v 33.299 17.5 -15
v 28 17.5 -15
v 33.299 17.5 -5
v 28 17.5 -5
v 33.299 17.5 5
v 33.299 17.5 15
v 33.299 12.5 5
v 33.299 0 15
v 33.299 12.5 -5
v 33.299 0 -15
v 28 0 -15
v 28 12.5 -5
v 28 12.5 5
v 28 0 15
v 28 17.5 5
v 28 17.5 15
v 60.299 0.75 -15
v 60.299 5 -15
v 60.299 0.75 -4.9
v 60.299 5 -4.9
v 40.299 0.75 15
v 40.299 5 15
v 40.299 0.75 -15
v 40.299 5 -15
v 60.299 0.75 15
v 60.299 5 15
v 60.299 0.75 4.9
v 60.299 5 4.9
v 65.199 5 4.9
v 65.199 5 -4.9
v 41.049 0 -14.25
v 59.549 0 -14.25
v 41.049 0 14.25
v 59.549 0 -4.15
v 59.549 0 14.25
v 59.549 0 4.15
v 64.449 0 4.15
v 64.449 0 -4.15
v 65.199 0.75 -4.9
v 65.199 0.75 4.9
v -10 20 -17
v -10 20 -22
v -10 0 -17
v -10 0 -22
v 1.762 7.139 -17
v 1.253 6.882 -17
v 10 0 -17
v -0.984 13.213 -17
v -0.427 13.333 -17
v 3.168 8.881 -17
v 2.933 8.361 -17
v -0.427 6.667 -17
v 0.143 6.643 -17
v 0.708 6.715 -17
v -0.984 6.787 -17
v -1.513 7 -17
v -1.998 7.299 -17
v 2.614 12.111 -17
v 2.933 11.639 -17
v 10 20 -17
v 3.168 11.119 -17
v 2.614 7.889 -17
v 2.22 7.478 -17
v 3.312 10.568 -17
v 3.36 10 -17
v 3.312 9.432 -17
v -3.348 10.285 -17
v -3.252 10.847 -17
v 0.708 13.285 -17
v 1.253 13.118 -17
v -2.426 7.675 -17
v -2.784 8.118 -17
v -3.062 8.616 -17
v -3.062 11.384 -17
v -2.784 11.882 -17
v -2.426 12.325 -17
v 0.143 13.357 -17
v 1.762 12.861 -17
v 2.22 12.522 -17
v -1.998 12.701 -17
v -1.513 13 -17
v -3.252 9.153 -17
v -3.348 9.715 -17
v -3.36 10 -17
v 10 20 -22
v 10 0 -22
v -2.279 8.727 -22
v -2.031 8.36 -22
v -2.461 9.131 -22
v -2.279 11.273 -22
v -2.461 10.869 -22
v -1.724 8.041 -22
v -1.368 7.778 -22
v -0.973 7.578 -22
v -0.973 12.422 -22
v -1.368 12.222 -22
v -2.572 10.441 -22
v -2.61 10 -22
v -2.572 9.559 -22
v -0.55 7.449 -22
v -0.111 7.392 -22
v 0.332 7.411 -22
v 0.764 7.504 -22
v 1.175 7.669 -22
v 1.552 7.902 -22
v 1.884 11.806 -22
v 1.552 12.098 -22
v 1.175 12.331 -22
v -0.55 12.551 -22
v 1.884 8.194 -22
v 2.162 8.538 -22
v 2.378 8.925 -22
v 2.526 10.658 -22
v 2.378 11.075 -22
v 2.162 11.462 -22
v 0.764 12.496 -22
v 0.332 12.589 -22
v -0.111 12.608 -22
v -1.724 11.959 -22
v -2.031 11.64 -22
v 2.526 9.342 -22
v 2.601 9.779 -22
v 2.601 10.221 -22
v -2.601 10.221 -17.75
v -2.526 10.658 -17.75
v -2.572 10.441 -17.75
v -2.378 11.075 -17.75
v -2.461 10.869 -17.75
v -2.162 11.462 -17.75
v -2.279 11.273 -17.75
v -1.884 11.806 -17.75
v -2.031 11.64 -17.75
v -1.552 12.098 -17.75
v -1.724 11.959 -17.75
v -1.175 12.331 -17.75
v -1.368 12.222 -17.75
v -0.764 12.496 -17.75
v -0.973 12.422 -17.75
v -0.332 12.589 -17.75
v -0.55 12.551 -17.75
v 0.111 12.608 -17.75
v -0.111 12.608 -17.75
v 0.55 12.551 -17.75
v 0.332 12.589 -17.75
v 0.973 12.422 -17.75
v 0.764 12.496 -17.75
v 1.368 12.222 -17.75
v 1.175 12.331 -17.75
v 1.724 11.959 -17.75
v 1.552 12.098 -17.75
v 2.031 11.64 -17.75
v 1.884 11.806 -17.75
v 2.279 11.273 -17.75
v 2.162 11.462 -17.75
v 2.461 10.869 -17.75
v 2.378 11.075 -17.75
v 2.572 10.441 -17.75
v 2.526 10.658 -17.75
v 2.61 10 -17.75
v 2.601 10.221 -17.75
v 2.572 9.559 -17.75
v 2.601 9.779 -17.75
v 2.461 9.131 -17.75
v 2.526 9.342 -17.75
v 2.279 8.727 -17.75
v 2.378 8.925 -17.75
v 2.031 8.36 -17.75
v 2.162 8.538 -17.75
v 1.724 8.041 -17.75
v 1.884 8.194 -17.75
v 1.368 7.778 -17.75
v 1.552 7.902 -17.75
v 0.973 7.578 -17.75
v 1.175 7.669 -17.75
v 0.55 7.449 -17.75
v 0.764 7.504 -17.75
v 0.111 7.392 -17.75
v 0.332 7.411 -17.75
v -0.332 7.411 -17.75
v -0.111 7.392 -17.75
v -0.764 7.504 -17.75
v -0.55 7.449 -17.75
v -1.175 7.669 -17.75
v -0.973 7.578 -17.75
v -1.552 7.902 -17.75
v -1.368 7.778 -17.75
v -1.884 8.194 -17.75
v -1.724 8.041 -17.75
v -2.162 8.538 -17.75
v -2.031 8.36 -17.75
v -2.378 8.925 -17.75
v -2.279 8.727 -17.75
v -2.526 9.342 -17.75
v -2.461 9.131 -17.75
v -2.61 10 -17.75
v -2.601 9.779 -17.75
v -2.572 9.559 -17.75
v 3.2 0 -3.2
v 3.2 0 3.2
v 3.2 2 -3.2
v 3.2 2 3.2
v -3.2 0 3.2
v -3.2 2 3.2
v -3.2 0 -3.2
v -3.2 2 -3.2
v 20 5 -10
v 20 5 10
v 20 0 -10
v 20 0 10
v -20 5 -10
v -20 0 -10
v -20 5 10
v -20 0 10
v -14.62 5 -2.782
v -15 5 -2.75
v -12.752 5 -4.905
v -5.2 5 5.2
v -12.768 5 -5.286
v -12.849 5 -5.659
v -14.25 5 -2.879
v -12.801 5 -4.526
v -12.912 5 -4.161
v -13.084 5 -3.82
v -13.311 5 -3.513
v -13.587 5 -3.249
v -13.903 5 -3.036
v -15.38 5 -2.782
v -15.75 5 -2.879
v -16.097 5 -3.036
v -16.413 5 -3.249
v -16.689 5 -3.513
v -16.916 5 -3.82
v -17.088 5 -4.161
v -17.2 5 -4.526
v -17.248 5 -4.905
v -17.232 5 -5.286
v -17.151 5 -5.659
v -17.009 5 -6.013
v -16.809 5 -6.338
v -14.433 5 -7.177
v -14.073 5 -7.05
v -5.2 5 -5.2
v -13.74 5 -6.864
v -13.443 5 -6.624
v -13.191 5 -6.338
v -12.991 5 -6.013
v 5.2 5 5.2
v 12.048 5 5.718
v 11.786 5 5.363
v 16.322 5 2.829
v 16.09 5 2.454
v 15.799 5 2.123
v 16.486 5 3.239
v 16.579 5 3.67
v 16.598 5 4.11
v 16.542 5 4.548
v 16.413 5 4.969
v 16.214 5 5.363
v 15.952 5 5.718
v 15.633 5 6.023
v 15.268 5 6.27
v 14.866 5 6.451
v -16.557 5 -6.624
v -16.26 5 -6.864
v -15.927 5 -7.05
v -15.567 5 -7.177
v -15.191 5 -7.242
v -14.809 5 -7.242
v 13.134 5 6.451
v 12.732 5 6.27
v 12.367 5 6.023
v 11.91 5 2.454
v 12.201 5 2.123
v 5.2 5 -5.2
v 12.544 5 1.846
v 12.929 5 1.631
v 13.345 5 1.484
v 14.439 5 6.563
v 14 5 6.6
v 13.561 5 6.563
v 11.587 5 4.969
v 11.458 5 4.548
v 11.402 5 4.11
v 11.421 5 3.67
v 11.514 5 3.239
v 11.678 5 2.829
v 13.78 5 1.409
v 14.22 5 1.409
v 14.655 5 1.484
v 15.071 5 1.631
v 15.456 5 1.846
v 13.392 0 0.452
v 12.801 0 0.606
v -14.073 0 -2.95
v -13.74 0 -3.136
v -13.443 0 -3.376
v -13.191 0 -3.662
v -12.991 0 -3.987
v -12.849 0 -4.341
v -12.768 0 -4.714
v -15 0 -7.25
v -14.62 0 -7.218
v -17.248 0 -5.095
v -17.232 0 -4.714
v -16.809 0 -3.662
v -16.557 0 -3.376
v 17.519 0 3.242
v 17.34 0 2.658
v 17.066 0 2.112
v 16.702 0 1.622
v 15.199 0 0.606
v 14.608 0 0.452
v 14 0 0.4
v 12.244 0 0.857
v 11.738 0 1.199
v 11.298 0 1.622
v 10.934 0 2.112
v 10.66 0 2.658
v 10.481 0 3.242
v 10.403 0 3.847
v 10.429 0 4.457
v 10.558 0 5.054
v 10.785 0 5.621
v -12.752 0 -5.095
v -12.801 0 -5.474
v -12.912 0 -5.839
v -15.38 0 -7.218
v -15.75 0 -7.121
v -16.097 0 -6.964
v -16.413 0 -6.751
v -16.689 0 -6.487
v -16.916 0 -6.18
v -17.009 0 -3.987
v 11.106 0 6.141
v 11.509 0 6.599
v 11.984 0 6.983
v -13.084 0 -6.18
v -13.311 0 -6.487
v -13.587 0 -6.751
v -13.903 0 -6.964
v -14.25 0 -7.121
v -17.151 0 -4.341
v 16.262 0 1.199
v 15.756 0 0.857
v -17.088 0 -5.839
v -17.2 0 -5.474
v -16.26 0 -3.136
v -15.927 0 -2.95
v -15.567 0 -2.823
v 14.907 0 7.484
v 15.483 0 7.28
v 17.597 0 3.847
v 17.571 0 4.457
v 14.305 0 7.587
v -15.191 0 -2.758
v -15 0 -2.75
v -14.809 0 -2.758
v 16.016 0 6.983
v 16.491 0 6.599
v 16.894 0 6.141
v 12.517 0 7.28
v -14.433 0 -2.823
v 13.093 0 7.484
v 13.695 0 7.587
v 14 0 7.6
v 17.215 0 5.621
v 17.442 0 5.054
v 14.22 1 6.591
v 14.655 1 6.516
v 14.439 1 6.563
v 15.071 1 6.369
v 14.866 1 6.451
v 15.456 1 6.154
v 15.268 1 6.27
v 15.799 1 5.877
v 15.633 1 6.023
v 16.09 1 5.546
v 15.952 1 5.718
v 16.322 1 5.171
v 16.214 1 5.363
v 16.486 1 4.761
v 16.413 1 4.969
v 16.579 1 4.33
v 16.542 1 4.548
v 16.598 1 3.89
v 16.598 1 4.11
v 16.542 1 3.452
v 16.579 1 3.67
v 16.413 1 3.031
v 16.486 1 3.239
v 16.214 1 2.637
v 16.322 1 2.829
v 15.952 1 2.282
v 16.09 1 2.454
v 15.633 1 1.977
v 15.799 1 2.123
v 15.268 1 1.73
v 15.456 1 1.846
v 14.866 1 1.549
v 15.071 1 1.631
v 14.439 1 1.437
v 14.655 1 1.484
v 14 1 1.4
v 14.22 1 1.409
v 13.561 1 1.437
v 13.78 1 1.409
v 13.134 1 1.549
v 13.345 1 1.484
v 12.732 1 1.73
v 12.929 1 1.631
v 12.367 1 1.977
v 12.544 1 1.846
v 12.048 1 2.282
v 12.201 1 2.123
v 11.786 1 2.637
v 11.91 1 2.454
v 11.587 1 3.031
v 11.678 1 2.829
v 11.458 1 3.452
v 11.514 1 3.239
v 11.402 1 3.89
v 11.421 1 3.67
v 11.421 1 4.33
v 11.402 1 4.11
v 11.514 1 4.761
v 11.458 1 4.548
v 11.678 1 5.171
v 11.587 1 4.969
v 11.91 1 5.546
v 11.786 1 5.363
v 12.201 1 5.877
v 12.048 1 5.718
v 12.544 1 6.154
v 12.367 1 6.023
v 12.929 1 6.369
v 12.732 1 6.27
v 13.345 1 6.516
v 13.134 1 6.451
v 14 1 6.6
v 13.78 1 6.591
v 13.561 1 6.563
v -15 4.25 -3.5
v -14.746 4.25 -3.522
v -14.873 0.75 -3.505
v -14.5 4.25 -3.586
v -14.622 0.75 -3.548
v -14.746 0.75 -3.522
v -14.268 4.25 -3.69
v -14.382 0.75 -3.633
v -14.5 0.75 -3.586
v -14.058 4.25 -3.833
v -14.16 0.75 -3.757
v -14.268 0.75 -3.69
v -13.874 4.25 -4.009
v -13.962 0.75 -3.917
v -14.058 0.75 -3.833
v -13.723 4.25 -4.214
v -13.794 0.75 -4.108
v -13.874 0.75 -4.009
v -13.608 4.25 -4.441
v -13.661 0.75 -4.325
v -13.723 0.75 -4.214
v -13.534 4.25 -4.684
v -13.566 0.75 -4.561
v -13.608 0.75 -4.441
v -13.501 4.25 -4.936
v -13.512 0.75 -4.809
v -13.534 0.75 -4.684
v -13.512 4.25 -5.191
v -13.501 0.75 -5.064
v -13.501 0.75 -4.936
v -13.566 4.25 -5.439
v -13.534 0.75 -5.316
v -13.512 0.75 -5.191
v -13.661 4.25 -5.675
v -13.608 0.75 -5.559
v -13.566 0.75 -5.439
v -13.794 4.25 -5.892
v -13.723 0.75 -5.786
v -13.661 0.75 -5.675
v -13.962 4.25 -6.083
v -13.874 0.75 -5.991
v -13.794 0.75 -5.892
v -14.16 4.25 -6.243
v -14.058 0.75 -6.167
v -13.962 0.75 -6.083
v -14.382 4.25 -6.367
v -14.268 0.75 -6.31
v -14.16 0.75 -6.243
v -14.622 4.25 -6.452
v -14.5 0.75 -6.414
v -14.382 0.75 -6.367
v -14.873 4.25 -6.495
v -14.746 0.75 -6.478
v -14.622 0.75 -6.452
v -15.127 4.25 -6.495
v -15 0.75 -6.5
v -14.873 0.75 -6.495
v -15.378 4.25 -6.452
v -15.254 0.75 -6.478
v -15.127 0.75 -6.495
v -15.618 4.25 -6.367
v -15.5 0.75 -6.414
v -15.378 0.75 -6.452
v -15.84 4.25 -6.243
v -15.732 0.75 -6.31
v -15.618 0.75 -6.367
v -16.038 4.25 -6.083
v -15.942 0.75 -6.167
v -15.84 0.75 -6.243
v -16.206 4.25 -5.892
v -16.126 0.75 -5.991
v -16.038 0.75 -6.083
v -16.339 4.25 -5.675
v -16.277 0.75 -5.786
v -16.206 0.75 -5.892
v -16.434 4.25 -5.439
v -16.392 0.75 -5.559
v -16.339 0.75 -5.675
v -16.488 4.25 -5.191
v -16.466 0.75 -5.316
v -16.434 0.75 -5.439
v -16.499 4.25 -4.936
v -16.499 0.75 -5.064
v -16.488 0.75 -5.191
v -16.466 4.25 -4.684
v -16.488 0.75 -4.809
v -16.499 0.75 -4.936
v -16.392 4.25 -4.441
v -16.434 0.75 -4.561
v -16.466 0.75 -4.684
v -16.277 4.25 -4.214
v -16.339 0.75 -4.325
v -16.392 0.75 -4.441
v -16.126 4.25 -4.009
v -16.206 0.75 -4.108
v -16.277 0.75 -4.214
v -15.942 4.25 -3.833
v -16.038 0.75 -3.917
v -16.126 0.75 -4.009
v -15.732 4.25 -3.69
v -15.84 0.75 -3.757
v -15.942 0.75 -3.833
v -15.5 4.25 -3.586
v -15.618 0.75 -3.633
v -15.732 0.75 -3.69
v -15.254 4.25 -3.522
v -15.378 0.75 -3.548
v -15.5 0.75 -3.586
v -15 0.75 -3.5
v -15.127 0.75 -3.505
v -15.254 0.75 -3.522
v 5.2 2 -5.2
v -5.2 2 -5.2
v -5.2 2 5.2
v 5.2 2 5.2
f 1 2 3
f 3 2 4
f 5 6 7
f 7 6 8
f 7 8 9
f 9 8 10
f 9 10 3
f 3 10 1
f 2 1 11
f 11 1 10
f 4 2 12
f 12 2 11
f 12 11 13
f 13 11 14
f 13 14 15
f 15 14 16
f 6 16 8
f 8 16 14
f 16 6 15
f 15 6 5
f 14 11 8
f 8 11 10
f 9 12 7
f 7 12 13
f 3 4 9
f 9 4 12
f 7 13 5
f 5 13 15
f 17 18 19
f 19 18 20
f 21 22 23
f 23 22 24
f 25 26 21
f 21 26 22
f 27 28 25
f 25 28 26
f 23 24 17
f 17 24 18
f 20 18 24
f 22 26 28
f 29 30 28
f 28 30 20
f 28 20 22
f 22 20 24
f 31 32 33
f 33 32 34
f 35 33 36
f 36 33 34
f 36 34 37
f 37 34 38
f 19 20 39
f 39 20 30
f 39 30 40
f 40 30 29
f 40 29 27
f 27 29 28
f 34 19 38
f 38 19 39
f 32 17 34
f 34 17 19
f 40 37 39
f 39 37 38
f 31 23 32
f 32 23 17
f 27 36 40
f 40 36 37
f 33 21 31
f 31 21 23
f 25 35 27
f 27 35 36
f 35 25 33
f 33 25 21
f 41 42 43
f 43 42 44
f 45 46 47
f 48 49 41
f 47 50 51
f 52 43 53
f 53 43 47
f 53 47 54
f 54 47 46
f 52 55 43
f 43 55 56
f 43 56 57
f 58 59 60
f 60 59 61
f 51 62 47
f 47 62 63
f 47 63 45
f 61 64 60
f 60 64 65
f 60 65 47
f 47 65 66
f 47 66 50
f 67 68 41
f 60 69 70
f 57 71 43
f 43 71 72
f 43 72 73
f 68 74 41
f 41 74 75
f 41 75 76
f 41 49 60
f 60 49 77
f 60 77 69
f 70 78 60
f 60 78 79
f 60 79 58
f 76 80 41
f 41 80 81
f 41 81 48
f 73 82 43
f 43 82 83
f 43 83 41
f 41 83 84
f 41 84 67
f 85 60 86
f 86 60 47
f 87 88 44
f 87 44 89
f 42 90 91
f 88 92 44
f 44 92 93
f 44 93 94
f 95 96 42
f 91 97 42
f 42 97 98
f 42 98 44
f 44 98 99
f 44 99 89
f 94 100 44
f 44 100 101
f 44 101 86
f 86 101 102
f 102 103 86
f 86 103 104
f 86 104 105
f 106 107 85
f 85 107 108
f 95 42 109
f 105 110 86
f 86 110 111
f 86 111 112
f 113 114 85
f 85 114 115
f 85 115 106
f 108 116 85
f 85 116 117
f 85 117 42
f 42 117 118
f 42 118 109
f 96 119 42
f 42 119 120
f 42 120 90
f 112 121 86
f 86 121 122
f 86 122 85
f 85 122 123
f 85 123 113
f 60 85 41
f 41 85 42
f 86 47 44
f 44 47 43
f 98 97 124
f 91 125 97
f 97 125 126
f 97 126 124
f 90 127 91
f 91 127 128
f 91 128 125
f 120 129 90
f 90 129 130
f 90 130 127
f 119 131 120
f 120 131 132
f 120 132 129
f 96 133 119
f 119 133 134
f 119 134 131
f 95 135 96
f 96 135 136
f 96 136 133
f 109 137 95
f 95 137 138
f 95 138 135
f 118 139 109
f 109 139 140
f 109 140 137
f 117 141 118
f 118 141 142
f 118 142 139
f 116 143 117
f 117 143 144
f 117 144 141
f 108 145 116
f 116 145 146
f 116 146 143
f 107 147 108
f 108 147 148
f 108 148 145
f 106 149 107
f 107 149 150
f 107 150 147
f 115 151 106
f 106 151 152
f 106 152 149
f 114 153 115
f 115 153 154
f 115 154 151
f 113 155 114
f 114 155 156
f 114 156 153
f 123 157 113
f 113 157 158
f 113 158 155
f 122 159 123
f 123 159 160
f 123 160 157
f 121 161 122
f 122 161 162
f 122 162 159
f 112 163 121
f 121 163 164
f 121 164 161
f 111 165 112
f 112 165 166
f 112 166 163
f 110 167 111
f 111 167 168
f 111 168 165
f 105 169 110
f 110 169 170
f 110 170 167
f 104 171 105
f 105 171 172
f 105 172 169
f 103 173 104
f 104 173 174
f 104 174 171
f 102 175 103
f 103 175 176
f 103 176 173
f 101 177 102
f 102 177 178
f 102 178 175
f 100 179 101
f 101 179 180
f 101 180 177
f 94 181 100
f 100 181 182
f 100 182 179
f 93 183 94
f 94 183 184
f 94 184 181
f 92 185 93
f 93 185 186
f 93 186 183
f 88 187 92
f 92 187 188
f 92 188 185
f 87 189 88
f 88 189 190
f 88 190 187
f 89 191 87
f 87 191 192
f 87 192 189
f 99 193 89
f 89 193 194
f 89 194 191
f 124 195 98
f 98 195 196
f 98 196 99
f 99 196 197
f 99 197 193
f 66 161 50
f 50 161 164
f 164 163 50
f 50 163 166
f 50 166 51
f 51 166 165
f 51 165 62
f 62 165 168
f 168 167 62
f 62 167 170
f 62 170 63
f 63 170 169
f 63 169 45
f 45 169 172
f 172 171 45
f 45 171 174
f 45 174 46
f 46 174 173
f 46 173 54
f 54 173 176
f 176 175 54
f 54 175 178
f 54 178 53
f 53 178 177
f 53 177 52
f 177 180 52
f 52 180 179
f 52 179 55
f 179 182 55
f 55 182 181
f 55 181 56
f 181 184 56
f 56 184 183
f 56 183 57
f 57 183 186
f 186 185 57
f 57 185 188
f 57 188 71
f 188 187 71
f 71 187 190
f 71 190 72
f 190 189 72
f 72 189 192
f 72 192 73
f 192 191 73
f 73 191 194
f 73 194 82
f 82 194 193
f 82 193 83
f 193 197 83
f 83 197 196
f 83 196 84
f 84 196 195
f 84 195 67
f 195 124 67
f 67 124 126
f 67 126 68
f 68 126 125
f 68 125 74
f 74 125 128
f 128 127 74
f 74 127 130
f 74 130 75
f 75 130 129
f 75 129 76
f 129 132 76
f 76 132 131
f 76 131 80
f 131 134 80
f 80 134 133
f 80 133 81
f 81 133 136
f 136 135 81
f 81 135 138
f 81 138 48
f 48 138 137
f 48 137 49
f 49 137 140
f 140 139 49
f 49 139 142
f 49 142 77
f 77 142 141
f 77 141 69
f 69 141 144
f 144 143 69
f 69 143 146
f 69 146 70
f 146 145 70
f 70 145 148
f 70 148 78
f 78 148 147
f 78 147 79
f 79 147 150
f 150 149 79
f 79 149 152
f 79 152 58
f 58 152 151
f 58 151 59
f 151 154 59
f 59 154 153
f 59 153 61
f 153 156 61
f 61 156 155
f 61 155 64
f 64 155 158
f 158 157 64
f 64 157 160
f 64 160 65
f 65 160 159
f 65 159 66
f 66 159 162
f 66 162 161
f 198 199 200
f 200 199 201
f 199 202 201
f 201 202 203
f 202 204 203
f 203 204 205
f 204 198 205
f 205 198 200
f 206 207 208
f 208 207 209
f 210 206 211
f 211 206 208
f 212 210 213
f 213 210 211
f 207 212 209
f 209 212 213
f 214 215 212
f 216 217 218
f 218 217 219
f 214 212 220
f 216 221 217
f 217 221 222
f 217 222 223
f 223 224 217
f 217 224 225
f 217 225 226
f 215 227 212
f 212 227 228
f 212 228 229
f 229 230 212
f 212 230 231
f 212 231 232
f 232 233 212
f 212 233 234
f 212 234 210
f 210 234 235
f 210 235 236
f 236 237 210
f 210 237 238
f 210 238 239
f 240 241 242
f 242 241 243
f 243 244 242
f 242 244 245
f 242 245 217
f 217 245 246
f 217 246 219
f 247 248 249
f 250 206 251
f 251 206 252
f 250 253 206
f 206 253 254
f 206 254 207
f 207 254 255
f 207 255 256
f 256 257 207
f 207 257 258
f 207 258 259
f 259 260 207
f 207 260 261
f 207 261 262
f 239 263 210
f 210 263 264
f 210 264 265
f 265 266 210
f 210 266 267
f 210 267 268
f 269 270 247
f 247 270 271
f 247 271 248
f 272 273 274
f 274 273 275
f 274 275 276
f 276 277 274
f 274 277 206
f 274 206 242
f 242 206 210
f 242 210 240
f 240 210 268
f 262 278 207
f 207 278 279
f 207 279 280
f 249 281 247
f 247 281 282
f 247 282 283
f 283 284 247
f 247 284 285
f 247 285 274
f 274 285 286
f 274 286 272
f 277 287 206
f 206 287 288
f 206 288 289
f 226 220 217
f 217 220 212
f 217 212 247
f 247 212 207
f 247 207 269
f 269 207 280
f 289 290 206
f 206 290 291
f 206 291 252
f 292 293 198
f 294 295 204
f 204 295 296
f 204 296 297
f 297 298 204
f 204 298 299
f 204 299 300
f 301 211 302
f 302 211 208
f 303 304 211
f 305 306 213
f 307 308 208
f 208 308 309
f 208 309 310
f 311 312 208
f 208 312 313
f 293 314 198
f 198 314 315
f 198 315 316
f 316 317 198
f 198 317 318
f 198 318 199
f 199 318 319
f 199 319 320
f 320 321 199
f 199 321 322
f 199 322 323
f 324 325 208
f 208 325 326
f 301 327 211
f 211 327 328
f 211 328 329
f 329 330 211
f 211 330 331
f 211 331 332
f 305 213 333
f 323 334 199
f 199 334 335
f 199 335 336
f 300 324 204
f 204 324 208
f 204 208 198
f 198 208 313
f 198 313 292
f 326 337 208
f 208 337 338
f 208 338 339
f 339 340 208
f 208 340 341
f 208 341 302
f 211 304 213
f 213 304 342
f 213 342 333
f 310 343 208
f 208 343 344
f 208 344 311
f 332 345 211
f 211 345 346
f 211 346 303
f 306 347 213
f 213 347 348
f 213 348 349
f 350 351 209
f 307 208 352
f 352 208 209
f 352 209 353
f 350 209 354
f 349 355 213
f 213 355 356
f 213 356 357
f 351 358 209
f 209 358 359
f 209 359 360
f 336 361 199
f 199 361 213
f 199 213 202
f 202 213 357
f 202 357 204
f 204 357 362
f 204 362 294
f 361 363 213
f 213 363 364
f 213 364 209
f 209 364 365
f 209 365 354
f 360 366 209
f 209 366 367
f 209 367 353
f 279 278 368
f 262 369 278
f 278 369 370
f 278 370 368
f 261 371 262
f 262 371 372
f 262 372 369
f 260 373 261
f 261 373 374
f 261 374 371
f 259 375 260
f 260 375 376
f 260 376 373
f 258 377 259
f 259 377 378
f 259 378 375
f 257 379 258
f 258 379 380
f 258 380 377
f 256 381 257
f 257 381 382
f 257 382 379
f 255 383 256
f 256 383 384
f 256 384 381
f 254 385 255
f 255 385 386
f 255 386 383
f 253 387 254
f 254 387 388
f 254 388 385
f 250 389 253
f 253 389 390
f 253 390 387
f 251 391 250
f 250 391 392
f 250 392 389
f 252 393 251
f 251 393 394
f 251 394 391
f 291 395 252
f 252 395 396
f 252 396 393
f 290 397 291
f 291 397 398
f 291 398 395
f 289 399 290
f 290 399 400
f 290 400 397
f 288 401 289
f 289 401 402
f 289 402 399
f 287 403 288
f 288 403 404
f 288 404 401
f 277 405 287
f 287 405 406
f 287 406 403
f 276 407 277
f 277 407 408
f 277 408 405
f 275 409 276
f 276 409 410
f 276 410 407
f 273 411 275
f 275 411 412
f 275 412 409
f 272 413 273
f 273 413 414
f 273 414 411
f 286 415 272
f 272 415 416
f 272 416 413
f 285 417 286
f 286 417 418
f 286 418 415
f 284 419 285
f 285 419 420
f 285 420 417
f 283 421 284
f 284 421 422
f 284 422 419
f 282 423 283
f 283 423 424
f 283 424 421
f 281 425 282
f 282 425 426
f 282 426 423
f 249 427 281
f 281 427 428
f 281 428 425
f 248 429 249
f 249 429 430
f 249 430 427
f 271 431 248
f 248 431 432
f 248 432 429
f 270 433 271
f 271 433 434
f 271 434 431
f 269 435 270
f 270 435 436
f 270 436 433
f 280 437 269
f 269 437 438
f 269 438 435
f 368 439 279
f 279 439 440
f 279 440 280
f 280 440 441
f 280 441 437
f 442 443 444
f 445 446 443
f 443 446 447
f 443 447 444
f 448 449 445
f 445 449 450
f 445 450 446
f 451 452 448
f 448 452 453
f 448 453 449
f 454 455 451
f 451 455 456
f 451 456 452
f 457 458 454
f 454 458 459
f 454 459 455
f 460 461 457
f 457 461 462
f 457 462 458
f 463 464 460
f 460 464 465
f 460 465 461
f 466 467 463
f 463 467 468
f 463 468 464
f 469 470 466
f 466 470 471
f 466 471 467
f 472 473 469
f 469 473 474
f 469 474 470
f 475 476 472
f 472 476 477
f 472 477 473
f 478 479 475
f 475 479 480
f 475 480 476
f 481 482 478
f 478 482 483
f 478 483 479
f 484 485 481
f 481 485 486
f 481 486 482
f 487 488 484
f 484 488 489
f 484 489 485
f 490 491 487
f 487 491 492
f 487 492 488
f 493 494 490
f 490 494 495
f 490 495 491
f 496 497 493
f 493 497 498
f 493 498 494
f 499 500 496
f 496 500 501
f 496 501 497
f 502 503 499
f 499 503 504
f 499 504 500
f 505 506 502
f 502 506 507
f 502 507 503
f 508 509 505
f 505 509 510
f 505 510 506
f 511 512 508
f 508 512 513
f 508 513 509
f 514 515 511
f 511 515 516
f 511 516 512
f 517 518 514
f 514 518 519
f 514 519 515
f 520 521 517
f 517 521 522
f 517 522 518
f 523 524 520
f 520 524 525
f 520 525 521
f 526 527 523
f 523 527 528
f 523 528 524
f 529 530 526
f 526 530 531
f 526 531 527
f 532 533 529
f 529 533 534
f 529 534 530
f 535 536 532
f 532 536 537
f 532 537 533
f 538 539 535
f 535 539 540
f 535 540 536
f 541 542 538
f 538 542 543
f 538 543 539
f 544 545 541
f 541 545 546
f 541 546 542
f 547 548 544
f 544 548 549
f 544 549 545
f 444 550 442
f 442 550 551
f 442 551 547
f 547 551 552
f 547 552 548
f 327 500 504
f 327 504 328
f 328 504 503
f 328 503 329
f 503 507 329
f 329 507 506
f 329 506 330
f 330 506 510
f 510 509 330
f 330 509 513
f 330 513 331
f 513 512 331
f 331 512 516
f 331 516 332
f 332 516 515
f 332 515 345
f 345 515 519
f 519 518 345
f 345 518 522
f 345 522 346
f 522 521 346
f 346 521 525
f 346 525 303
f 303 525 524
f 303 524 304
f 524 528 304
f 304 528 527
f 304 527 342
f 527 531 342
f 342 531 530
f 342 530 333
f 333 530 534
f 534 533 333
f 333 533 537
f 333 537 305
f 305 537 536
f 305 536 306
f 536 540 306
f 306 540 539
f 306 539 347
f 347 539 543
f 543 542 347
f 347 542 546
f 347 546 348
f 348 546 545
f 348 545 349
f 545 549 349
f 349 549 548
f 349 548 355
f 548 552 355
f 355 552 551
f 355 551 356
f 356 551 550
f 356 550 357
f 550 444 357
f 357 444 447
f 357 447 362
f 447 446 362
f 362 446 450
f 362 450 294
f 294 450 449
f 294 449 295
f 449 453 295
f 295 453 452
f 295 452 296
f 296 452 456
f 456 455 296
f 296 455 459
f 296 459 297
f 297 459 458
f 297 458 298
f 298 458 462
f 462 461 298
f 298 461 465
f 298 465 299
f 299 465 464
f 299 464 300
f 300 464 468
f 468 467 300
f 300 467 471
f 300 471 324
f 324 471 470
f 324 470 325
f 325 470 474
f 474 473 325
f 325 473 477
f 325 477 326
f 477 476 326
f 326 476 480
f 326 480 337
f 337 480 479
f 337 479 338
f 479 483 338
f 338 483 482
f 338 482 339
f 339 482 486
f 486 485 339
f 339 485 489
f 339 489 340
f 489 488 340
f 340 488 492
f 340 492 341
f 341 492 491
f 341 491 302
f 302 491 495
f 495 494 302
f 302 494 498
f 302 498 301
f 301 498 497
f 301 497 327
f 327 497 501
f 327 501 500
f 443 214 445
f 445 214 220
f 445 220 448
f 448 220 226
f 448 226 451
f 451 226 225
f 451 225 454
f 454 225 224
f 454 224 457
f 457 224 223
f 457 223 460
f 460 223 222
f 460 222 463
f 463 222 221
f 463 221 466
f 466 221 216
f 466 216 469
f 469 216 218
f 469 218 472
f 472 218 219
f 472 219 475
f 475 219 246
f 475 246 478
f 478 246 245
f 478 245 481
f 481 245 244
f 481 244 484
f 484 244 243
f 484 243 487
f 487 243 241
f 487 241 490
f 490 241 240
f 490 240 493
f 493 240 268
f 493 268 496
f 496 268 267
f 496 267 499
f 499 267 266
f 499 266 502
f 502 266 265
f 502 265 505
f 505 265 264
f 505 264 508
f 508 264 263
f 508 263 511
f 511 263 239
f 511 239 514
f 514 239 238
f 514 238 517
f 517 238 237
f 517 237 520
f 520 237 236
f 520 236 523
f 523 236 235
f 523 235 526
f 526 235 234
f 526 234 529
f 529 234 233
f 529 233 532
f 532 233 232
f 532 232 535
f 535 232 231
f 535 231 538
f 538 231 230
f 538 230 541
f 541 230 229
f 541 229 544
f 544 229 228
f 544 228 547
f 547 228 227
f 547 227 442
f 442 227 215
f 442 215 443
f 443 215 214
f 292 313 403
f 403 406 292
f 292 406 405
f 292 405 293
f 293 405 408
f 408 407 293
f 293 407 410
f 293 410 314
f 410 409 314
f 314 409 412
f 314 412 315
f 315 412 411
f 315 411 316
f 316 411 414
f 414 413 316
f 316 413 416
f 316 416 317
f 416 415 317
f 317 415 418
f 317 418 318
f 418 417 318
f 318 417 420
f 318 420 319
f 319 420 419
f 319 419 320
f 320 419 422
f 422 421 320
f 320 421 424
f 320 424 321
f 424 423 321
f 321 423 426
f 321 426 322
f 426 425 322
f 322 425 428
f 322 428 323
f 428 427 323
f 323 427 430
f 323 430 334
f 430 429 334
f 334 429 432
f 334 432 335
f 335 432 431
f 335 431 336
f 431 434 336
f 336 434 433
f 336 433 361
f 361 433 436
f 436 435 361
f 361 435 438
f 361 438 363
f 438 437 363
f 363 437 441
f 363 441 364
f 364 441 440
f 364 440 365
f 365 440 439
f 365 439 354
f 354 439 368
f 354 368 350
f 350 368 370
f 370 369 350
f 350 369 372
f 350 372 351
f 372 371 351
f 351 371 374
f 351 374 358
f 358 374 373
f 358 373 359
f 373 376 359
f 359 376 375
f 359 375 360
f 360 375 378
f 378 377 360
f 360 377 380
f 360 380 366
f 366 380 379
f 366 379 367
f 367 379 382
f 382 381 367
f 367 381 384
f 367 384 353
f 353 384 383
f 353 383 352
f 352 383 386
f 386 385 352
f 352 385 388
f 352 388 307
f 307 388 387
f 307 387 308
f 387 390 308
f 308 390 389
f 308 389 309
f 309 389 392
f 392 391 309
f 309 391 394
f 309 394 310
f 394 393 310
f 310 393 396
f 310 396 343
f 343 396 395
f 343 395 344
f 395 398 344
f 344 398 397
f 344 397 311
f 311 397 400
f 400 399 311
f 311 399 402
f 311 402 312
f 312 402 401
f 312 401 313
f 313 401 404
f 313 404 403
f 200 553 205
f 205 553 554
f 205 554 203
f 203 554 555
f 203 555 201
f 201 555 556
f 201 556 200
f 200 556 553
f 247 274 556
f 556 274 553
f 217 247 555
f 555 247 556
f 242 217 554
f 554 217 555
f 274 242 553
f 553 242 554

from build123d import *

# Parameters (mm, degrees)
SKETCH1_W           = 40
SKETCH1_H           = 20
BOSS_EXTRUDE1_DEPTH = 5
SKETCH2_R           = 1.5
SKETCH2_R_2         = 2.6
CUT_EXTRUDE1_DEPTH  = 5
CHAMFER1_SIZE       = 0.75
CHAMFER2_SIZE       = 1
SKETCH3_W           = 6.4
SKETCH3_H           = 6.4
CUT_EXTRUDE2_DEPTH  = 5
SKETCH4_W           = 5.298970187
SKETCH4_H           = 30
BOSS_EXTRUDE2_DEPTH = 17.5
SKETCH5_W           = 10
SKETCH5_H           = 10
CUT_EXTRUDE3_DEPTH  = 17.5
SKETCH6_W           = 20
SKETCH6_H           = 30
BOSS_EXTRUDE3_DEPTH = 5
SKETCH7_W           = 4.9
SKETCH7_H           = 9.8
BOSS_EXTRUDE4_DEPTH = 5
SKETCH8_W           = 20
SKETCH8_H           = 5
BOSS_EXTRUDE5_DEPTH = 20
SKETCH9_R           = 2.61
CUT_EXTRUDE4_DEPTH  = 20
CHAMFER4_SIZE       = 0.75
CHAMFER5_SIZE       = 0.75
SKETCH11_W          = 10.4
SKETCH11_H          = 10.4
CUT_EXTRUDE5_DEPTH  = 3


with BuildPart() as part:
    # Sketch1 → Boss-Extrude1 (new body)
    with BuildSketch(Plane(origin=(0, 0, 0), x_dir=(1, 0, 0), z_dir=(0, 1, 0))):
        Rectangle(SKETCH1_W, SKETCH1_H)
    extrude(amount=BOSS_EXTRUDE1_DEPTH)

    # Sketch2 → Cut-Extrude1 (cut)
    with BuildSketch(Plane(origin=(0, 5, 0), x_dir=(1, 0, 0), z_dir=(0, 1, 0))):
        with Locations(Location((-15, 5, 0), (0, 0, 270))):
            Circle(SKETCH2_R)
        with Locations(Location((14, -4, 0), (0, 0, 270))):
            Circle(SKETCH2_R_2)
    extrude(amount=-CUT_EXTRUDE1_DEPTH, mode=Mode.SUBTRACT)

    # Chamfer1
    chamfer1_edges = [part.edges().sort_by_distance(p)[0] for p in [
        (-15, 0, -6.5),
        (-15, 5, -6.5),
    ]]
    chamfer(chamfer1_edges, length=CHAMFER1_SIZE)

    # Chamfer2
    chamfer2_edges = [part.edges().sort_by_distance(p)[0] for p in [
        (14, 0, 1.4),
    ]]
    chamfer(chamfer2_edges, length=CHAMFER2_SIZE)

    # Sketch3 → Cut-Extrude2 (cut)
    with BuildSketch(Plane(origin=(0, 5, 0), x_dir=(1, 0, 0), z_dir=(0, 1, 0))):
        Rectangle(SKETCH3_W, SKETCH3_H)
    extrude(amount=-CUT_EXTRUDE2_DEPTH, mode=Mode.SUBTRACT)

    # Sketch11 → Cut-Extrude5 (cut)
    with BuildSketch(Plane(origin=(0, 5, 0), x_dir=(1, 0, 0), z_dir=(0, 1, 0))):
        Rectangle(SKETCH11_W, SKETCH11_H)
    extrude(amount=-CUT_EXTRUDE5_DEPTH, mode=Mode.SUBTRACT)


with BuildPart() as body_2:
    # Sketch4 → Boss-Extrude2 (new body)
    with BuildSketch(Plane(origin=(0, 0, 0), x_dir=(1, 0, 0), z_dir=(0, 1, 0))):
        with Locations((30.649485094, 0)):
            Rectangle(SKETCH4_W, SKETCH4_H)
    extrude(amount=BOSS_EXTRUDE2_DEPTH)

    # Sketch5 → Cut-Extrude3 (cut)
    with BuildSketch(Plane(origin=(33.298970187, 0, 0), x_dir=(0, 0, -1), z_dir=(1, 0, 0))):
        with Locations((0, 17.5)):
            Rectangle(SKETCH5_W, SKETCH5_H)
    extrude(amount=-CUT_EXTRUDE3_DEPTH, mode=Mode.SUBTRACT)


with BuildPart() as body_3:
    # Sketch6 → Boss-Extrude3 (new body)
    with BuildSketch(Plane(origin=(0, 0, 0), x_dir=(1, 0, 0), z_dir=(0, 1, 0))):
        with Locations((50.298970187, 0)):
            Rectangle(SKETCH6_W, SKETCH6_H)
    extrude(amount=BOSS_EXTRUDE3_DEPTH)

    # Sketch7 → Boss-Extrude4 (add)
    with BuildSketch(Plane(origin=(0, 5, 0), x_dir=(1, 0, 0), z_dir=(0, 1, 0))):
        with Locations((62.748970187, 0)):
            Rectangle(SKETCH7_W, SKETCH7_H)
    extrude(amount=-BOSS_EXTRUDE4_DEPTH)

    # Chamfer4
    chamfer4_edges = [body_3.edges().sort_by_distance(p)[0] for p in [
        (60.298970187, 0, -9.95),
        (62.748970187, 0, -4.9),
        (65.198970187, 0, 0),
        (62.748970187, 0, 4.9),
        (50.298970187, 0, -15),
        (60.298970187, 0, 9.95),
        (50.298970187, 0, 15),
        (40.298970187, 0, 0),
    ]]
    chamfer(chamfer4_edges, length=CHAMFER4_SIZE)


with BuildPart() as body_4:
    # Sketch8 → Boss-Extrude5 (new body)
    with BuildSketch(Plane(origin=(0, 0, 0), x_dir=(1, 0, 0), z_dir=(0, 1, 0))):
        with Locations((0, 19.5)):
            Rectangle(SKETCH8_W, SKETCH8_H)
    extrude(amount=BOSS_EXTRUDE5_DEPTH)

    # Sketch9 → Cut-Extrude4 (cut)
    with BuildSketch(Plane(origin=(0, 0, -22), x_dir=(-1, 0, 0), z_dir=(0, 0, -1))):
        with Locations((0, 10)):
            Circle(SKETCH9_R)
    extrude(amount=-CUT_EXTRUDE4_DEPTH, mode=Mode.SUBTRACT)

    # Chamfer5
    chamfer5_edges = [body_4.edges().sort_by_distance(p)[0] for p in [
        (2.61, 10, -17),
    ]]
    chamfer(chamfer5_edges, length=CHAMFER5_SIZE)


solid = Compound([part.part, body_2.part, body_3.part, body_4.part])
